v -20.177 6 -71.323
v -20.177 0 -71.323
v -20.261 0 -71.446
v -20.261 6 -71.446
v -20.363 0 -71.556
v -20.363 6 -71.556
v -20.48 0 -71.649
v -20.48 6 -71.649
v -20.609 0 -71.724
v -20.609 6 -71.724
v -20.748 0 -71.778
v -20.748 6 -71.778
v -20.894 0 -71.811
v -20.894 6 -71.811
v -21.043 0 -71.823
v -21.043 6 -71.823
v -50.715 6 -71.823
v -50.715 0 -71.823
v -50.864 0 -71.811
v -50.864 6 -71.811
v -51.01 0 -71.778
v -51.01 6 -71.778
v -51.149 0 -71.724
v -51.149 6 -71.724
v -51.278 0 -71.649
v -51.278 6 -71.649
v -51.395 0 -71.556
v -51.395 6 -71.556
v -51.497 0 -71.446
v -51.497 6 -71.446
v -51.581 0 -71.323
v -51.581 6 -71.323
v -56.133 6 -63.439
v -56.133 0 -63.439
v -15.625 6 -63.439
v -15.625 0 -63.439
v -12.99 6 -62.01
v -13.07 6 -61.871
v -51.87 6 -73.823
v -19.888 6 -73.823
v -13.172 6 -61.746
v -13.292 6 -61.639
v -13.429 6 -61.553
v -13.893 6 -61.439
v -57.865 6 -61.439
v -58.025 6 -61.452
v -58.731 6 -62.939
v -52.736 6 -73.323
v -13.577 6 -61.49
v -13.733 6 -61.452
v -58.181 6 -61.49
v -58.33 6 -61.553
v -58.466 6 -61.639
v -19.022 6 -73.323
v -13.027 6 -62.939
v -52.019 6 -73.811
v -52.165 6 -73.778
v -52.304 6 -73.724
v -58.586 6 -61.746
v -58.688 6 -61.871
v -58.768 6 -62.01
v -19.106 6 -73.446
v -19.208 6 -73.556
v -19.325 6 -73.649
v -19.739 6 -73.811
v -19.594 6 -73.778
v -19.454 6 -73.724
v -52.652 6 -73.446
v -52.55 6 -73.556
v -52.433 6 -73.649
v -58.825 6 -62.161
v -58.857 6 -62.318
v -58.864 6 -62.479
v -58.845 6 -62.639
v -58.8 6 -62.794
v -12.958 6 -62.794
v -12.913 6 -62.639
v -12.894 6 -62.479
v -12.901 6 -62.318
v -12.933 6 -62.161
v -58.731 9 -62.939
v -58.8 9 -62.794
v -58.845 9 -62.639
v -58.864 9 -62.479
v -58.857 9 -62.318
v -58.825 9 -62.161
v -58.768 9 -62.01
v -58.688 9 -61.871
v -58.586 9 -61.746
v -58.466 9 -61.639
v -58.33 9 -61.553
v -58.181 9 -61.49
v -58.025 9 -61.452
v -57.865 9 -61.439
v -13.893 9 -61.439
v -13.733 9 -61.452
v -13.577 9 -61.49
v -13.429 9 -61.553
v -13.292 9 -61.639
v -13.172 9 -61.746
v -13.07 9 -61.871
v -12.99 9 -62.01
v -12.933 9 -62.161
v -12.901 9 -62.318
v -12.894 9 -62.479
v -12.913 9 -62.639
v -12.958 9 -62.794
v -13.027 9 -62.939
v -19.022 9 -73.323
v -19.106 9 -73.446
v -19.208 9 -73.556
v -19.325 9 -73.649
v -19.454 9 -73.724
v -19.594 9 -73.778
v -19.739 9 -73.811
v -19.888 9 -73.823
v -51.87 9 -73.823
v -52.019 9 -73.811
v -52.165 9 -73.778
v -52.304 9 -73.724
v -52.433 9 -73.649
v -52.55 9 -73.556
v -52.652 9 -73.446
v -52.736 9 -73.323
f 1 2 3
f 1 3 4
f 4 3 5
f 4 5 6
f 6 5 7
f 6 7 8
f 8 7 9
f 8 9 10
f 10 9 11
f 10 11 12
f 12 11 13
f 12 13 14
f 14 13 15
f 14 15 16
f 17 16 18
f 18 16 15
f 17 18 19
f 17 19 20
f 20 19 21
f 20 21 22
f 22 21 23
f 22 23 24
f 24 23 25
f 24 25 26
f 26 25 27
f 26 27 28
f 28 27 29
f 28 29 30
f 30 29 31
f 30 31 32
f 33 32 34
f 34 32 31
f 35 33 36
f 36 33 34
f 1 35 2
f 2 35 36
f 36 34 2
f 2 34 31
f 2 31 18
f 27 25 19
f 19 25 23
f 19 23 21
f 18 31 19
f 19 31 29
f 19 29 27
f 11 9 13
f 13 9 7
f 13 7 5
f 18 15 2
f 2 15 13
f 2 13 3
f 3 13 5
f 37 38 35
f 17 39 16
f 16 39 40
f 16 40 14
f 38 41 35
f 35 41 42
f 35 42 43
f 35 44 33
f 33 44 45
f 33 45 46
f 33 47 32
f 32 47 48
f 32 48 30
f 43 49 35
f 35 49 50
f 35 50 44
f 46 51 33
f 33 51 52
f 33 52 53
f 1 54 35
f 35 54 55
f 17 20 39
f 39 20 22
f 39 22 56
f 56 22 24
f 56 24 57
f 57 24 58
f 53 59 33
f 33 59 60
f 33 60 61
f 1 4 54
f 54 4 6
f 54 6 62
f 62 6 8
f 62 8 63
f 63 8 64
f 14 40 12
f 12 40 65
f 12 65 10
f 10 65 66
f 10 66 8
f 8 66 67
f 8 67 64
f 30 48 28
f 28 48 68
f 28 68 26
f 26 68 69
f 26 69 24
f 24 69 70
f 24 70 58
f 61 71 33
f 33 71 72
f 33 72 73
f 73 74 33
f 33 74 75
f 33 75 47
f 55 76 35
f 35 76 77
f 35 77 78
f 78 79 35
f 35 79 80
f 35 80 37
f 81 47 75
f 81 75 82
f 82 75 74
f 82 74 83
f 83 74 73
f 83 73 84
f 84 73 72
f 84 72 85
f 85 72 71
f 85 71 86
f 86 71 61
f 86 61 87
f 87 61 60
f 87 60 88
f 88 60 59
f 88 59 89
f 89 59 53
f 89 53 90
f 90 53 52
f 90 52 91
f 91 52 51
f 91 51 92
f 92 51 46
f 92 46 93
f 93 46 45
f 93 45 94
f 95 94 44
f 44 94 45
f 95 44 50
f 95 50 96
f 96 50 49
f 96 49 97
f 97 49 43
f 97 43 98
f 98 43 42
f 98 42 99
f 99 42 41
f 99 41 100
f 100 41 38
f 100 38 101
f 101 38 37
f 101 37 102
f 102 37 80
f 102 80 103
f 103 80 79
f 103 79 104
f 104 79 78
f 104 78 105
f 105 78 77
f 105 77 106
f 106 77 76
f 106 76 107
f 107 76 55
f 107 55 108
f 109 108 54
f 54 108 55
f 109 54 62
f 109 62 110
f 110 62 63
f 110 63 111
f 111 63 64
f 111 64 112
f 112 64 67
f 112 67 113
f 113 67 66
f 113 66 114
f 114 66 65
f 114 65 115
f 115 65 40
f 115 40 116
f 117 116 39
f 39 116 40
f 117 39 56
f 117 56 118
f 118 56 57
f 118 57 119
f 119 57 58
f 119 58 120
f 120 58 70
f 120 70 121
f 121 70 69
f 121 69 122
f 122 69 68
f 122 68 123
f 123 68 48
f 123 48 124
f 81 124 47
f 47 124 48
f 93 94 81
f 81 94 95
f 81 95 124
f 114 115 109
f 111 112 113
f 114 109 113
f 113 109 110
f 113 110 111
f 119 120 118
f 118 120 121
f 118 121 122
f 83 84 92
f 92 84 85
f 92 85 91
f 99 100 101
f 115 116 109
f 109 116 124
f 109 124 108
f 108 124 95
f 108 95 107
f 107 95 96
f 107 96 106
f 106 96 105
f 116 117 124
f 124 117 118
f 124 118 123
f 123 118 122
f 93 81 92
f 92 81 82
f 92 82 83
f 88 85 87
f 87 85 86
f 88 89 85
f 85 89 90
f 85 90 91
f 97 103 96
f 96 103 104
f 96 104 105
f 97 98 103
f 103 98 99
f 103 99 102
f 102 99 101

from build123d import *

# Parameters (mm, degrees)
BOSS_EXTRUDE1_DEPTH = 6
BOSS_EXTRUDE2_DEPTH = 3


with BuildPart() as part:
    # Sketch1 → Boss-Extrude1 (new body)
    with BuildSketch(Plane(origin=(0, 0, 0), x_dir=(1, 0, 0), z_dir=(0, 1, 0))):
        with BuildLine():
            Line((-21.042961381, 71.822608989), (-50.715055762, 71.822608989))
            ThreePointArc((-50.715055762, 71.822608989), (-51.215055762, 71.688634393), (-51.581081166, 71.322608989))
            Line((-51.581081166, 71.322608989), (-56.132737248, 63.438909397))
            Line((-56.132737248, 63.438909397), (-15.625279896, 63.438909397))
            Line((-15.625279896, 63.438909397), (-20.176935977, 71.322608989))
            ThreePointArc((-20.176935977, 71.322608989), (-20.542961381, 71.688634393), (-21.042961381, 71.822608989))
        make_face()
    extrude(amount=BOSS_EXTRUDE1_DEPTH)

    # Sketch2 → Boss-Extrude2 (add)
    with BuildSketch(Plane(origin=(0, 6, 0), x_dir=(1, 0, 0), z_dir=(0, 1, 0))):
        with BuildLine():
            Line((-13.893229088, 61.438909397), (-57.864788055, 61.438909397))
            ThreePointArc((-57.864788055, 61.438909397), (-58.730813459, 61.938909397), (-58.730813459, 62.938909397))
            Line((-58.730813459, 62.938909397), (-52.735781704, 73.322608989))
            ThreePointArc((-52.735781704, 73.322608989), (-52.3697563, 73.688634393), (-51.8697563, 73.822608989))
            Line((-51.8697563, 73.822608989), (-19.888260843, 73.822608989))
            ThreePointArc((-19.888260843, 73.822608989), (-19.388260843, 73.688634393), (-19.022235439, 73.322608989))
            Line((-19.022235439, 73.322608989), (-13.027203684, 62.938909397))
            ThreePointArc((-13.027203684, 62.938909397), (-13.027203684, 61.938909397), (-13.893229088, 61.438909397))
        make_face()
    extrude(amount=BOSS_EXTRUDE2_DEPTH)


solid = part.part
